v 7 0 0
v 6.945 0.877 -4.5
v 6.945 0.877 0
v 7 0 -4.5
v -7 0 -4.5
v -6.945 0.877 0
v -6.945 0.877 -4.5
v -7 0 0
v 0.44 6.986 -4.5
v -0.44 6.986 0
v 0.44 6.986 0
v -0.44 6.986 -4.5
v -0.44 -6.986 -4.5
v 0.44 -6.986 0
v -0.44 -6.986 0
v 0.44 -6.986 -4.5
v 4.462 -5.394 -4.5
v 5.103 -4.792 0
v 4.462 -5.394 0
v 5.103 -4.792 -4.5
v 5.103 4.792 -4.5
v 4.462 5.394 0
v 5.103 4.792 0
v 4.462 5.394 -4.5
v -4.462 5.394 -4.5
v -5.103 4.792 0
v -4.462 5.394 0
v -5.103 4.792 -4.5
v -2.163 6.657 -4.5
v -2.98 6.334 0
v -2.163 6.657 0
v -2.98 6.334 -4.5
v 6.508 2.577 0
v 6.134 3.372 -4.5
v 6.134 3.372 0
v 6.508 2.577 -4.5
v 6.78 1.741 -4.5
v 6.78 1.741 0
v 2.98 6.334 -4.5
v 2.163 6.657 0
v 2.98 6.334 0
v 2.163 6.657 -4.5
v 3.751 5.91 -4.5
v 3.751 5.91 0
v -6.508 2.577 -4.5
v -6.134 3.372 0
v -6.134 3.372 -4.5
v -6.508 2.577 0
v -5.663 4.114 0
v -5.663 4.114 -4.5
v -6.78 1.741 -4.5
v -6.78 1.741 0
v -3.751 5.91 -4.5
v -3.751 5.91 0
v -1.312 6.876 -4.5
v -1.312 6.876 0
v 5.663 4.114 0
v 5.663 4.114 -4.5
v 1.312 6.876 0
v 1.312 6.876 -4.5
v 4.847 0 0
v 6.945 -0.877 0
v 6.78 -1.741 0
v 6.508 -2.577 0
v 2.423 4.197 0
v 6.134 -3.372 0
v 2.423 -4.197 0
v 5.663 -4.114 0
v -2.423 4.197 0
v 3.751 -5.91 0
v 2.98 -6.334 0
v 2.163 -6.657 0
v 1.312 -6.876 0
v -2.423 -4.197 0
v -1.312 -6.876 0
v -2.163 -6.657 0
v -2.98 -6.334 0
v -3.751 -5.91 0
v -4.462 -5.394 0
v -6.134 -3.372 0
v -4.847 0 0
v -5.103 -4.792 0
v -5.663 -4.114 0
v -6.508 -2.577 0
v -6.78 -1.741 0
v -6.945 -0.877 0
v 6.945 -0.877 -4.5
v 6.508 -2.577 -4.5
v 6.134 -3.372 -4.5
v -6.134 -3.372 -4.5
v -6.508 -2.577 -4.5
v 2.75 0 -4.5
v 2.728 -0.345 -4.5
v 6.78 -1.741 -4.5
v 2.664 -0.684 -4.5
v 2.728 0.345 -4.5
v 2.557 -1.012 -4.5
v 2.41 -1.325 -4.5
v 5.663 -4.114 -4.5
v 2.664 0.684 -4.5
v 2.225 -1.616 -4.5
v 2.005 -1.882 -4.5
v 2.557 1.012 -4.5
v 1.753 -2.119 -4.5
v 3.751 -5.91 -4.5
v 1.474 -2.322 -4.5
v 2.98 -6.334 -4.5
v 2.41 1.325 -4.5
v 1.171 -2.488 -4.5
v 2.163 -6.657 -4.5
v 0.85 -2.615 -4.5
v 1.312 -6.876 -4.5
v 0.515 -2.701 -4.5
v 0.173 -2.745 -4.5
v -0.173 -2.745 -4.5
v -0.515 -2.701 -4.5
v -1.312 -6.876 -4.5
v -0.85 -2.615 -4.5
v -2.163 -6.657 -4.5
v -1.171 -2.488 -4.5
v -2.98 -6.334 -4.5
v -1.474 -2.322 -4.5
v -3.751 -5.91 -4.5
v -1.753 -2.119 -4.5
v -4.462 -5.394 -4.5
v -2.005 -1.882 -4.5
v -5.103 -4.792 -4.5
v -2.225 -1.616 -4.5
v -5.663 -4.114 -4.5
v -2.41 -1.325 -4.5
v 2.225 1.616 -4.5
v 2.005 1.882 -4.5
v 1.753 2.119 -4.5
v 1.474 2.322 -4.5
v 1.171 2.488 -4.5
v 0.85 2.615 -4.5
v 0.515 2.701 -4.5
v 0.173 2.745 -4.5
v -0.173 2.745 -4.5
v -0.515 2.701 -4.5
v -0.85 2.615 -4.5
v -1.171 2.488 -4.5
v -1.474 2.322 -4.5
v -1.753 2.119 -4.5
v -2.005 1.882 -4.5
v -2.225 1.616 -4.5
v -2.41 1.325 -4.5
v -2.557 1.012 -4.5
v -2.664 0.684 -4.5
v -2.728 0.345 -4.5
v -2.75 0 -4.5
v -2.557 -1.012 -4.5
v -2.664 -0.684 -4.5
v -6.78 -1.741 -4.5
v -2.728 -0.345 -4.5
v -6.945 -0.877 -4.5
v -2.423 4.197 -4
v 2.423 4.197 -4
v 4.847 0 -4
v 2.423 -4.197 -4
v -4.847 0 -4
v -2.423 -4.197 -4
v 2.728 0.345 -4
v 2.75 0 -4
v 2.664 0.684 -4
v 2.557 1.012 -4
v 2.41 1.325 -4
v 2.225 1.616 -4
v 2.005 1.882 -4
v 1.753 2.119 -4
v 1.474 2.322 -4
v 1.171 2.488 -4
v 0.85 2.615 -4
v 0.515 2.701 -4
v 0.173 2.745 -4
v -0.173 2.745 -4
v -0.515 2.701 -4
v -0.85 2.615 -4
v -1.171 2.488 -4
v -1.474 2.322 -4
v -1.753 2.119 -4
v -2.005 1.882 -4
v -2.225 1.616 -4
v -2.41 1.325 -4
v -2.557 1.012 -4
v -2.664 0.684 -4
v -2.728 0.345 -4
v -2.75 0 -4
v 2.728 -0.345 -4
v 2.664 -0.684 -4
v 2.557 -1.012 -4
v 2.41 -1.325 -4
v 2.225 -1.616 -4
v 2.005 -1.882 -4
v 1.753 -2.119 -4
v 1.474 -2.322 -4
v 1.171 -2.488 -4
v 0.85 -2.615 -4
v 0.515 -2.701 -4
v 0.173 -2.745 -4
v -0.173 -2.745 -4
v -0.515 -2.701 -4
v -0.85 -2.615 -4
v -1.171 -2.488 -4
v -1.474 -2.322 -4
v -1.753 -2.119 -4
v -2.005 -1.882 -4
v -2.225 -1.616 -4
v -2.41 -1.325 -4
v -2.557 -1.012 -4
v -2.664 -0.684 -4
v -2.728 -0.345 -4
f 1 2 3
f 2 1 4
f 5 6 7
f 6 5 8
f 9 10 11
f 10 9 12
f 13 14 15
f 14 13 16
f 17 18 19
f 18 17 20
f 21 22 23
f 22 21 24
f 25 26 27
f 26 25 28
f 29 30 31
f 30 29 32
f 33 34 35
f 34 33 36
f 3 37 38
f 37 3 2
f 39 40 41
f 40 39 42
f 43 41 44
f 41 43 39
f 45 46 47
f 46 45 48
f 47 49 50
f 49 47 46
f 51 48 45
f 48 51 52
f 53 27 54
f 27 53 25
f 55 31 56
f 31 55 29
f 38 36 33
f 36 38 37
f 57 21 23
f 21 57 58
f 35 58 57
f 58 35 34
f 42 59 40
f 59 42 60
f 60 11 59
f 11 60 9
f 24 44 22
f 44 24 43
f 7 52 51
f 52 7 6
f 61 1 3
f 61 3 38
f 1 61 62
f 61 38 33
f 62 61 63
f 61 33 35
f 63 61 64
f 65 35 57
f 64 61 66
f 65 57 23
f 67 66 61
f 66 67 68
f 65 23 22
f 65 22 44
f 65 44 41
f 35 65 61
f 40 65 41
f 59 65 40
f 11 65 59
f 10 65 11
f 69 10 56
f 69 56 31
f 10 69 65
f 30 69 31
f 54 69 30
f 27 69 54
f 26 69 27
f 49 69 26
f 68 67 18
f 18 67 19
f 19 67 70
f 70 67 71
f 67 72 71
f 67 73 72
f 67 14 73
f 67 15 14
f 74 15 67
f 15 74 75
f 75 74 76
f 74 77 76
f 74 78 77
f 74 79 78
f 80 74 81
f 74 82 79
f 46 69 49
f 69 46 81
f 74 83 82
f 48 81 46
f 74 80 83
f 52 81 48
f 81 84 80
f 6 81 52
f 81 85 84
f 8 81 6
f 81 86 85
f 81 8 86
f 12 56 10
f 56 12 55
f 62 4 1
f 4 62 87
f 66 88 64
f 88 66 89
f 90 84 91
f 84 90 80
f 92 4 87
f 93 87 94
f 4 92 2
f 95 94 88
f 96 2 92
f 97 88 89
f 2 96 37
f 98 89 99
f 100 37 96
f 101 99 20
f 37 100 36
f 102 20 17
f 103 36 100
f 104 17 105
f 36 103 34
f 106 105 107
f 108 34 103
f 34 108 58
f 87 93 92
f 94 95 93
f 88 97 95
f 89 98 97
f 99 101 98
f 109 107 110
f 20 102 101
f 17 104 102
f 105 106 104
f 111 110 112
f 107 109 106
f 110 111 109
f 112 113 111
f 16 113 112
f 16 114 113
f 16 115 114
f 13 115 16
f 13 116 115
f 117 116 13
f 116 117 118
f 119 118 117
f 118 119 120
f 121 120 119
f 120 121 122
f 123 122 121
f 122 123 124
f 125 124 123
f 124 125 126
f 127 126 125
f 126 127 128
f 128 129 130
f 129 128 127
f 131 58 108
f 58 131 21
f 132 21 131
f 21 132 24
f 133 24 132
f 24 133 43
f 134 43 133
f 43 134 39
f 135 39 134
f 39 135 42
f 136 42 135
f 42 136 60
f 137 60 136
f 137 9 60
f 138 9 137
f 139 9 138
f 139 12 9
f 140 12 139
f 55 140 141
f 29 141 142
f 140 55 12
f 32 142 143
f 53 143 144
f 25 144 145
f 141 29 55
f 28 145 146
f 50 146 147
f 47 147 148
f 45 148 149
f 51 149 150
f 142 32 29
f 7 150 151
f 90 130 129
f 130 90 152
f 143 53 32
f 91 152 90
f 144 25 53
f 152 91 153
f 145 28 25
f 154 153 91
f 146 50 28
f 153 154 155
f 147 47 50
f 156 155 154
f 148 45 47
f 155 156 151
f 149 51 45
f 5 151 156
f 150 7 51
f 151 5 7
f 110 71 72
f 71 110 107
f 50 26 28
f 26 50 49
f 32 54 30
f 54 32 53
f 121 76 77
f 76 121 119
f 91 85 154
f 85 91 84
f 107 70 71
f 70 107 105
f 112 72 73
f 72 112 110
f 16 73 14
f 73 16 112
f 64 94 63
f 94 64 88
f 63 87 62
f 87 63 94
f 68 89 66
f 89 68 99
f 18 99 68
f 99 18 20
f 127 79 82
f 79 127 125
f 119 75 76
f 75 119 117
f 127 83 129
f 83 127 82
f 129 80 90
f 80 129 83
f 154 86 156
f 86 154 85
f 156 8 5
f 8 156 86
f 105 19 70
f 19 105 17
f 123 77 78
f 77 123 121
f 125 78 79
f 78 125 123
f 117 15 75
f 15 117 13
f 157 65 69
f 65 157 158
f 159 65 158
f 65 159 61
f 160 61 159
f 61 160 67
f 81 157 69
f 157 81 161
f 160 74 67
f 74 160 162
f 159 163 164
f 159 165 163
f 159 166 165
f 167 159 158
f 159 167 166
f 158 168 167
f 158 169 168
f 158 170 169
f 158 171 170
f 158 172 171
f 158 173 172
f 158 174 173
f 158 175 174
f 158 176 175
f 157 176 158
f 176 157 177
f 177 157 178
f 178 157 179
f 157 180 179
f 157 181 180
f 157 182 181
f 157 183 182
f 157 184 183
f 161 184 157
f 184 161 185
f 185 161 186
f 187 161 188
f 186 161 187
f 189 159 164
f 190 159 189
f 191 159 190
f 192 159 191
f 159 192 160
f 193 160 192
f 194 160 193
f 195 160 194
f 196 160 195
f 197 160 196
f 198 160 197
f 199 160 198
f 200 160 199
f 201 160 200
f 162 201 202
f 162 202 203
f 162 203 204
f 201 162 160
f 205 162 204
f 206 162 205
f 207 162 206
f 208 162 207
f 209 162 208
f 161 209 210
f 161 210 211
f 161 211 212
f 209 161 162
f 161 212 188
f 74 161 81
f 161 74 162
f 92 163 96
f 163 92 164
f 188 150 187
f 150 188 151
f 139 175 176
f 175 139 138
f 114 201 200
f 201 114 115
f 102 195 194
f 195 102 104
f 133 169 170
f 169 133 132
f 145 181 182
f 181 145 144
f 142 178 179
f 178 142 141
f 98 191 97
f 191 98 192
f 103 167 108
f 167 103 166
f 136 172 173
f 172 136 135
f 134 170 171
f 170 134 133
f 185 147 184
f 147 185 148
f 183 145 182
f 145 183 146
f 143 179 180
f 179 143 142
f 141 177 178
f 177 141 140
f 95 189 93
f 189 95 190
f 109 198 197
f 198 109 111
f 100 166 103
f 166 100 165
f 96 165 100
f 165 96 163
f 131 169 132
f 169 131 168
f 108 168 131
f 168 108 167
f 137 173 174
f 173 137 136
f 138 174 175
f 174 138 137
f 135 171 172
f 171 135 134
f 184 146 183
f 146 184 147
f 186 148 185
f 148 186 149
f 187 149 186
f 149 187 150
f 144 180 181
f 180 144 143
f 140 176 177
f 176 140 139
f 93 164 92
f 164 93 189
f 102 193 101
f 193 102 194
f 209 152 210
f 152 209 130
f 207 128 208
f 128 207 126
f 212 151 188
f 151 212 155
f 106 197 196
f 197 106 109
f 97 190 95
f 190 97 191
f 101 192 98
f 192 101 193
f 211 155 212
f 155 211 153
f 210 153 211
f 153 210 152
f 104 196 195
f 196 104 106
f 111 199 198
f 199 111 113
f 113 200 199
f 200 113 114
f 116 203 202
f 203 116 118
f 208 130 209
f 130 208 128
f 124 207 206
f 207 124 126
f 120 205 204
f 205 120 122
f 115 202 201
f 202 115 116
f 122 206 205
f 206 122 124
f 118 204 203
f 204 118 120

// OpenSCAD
$fn = 50;


difference() {
	union() {
		translate(v = [0, 0, -4.5000000000]) {
			cylinder(h = 4.5000000000, r = 7.0000000000);
		}
		translate(v = [0, 0, -3.0000000000]) {
			cylinder(h = 3, r = 2.8750000000);
		}
	}
	union() {
		translate(v = [0, 0, 0]) {
			rotate(a = [0, 0, 0]) {
				difference() {
					union() {
						translate(v = [0, 0, -4]) {
							linear_extrude(height = 4) {
								polygon(points = [[4.8468000000, 0.0000000000], [2.4234000000, 4.1974519271], [-2.4234000000, 4.1974519271], [-4.8468000000, 0.0000000000], [-2.4234000000, -4.1974519271], [2.4234000000, -4.1974519271]]);
							}
						}
					}
					union();
				}
			}
		}
		#translate(v = [0, 0, -100.0000000000]) {
			cylinder(h = 200, r = 2.7500000000);
		}
	}
}
